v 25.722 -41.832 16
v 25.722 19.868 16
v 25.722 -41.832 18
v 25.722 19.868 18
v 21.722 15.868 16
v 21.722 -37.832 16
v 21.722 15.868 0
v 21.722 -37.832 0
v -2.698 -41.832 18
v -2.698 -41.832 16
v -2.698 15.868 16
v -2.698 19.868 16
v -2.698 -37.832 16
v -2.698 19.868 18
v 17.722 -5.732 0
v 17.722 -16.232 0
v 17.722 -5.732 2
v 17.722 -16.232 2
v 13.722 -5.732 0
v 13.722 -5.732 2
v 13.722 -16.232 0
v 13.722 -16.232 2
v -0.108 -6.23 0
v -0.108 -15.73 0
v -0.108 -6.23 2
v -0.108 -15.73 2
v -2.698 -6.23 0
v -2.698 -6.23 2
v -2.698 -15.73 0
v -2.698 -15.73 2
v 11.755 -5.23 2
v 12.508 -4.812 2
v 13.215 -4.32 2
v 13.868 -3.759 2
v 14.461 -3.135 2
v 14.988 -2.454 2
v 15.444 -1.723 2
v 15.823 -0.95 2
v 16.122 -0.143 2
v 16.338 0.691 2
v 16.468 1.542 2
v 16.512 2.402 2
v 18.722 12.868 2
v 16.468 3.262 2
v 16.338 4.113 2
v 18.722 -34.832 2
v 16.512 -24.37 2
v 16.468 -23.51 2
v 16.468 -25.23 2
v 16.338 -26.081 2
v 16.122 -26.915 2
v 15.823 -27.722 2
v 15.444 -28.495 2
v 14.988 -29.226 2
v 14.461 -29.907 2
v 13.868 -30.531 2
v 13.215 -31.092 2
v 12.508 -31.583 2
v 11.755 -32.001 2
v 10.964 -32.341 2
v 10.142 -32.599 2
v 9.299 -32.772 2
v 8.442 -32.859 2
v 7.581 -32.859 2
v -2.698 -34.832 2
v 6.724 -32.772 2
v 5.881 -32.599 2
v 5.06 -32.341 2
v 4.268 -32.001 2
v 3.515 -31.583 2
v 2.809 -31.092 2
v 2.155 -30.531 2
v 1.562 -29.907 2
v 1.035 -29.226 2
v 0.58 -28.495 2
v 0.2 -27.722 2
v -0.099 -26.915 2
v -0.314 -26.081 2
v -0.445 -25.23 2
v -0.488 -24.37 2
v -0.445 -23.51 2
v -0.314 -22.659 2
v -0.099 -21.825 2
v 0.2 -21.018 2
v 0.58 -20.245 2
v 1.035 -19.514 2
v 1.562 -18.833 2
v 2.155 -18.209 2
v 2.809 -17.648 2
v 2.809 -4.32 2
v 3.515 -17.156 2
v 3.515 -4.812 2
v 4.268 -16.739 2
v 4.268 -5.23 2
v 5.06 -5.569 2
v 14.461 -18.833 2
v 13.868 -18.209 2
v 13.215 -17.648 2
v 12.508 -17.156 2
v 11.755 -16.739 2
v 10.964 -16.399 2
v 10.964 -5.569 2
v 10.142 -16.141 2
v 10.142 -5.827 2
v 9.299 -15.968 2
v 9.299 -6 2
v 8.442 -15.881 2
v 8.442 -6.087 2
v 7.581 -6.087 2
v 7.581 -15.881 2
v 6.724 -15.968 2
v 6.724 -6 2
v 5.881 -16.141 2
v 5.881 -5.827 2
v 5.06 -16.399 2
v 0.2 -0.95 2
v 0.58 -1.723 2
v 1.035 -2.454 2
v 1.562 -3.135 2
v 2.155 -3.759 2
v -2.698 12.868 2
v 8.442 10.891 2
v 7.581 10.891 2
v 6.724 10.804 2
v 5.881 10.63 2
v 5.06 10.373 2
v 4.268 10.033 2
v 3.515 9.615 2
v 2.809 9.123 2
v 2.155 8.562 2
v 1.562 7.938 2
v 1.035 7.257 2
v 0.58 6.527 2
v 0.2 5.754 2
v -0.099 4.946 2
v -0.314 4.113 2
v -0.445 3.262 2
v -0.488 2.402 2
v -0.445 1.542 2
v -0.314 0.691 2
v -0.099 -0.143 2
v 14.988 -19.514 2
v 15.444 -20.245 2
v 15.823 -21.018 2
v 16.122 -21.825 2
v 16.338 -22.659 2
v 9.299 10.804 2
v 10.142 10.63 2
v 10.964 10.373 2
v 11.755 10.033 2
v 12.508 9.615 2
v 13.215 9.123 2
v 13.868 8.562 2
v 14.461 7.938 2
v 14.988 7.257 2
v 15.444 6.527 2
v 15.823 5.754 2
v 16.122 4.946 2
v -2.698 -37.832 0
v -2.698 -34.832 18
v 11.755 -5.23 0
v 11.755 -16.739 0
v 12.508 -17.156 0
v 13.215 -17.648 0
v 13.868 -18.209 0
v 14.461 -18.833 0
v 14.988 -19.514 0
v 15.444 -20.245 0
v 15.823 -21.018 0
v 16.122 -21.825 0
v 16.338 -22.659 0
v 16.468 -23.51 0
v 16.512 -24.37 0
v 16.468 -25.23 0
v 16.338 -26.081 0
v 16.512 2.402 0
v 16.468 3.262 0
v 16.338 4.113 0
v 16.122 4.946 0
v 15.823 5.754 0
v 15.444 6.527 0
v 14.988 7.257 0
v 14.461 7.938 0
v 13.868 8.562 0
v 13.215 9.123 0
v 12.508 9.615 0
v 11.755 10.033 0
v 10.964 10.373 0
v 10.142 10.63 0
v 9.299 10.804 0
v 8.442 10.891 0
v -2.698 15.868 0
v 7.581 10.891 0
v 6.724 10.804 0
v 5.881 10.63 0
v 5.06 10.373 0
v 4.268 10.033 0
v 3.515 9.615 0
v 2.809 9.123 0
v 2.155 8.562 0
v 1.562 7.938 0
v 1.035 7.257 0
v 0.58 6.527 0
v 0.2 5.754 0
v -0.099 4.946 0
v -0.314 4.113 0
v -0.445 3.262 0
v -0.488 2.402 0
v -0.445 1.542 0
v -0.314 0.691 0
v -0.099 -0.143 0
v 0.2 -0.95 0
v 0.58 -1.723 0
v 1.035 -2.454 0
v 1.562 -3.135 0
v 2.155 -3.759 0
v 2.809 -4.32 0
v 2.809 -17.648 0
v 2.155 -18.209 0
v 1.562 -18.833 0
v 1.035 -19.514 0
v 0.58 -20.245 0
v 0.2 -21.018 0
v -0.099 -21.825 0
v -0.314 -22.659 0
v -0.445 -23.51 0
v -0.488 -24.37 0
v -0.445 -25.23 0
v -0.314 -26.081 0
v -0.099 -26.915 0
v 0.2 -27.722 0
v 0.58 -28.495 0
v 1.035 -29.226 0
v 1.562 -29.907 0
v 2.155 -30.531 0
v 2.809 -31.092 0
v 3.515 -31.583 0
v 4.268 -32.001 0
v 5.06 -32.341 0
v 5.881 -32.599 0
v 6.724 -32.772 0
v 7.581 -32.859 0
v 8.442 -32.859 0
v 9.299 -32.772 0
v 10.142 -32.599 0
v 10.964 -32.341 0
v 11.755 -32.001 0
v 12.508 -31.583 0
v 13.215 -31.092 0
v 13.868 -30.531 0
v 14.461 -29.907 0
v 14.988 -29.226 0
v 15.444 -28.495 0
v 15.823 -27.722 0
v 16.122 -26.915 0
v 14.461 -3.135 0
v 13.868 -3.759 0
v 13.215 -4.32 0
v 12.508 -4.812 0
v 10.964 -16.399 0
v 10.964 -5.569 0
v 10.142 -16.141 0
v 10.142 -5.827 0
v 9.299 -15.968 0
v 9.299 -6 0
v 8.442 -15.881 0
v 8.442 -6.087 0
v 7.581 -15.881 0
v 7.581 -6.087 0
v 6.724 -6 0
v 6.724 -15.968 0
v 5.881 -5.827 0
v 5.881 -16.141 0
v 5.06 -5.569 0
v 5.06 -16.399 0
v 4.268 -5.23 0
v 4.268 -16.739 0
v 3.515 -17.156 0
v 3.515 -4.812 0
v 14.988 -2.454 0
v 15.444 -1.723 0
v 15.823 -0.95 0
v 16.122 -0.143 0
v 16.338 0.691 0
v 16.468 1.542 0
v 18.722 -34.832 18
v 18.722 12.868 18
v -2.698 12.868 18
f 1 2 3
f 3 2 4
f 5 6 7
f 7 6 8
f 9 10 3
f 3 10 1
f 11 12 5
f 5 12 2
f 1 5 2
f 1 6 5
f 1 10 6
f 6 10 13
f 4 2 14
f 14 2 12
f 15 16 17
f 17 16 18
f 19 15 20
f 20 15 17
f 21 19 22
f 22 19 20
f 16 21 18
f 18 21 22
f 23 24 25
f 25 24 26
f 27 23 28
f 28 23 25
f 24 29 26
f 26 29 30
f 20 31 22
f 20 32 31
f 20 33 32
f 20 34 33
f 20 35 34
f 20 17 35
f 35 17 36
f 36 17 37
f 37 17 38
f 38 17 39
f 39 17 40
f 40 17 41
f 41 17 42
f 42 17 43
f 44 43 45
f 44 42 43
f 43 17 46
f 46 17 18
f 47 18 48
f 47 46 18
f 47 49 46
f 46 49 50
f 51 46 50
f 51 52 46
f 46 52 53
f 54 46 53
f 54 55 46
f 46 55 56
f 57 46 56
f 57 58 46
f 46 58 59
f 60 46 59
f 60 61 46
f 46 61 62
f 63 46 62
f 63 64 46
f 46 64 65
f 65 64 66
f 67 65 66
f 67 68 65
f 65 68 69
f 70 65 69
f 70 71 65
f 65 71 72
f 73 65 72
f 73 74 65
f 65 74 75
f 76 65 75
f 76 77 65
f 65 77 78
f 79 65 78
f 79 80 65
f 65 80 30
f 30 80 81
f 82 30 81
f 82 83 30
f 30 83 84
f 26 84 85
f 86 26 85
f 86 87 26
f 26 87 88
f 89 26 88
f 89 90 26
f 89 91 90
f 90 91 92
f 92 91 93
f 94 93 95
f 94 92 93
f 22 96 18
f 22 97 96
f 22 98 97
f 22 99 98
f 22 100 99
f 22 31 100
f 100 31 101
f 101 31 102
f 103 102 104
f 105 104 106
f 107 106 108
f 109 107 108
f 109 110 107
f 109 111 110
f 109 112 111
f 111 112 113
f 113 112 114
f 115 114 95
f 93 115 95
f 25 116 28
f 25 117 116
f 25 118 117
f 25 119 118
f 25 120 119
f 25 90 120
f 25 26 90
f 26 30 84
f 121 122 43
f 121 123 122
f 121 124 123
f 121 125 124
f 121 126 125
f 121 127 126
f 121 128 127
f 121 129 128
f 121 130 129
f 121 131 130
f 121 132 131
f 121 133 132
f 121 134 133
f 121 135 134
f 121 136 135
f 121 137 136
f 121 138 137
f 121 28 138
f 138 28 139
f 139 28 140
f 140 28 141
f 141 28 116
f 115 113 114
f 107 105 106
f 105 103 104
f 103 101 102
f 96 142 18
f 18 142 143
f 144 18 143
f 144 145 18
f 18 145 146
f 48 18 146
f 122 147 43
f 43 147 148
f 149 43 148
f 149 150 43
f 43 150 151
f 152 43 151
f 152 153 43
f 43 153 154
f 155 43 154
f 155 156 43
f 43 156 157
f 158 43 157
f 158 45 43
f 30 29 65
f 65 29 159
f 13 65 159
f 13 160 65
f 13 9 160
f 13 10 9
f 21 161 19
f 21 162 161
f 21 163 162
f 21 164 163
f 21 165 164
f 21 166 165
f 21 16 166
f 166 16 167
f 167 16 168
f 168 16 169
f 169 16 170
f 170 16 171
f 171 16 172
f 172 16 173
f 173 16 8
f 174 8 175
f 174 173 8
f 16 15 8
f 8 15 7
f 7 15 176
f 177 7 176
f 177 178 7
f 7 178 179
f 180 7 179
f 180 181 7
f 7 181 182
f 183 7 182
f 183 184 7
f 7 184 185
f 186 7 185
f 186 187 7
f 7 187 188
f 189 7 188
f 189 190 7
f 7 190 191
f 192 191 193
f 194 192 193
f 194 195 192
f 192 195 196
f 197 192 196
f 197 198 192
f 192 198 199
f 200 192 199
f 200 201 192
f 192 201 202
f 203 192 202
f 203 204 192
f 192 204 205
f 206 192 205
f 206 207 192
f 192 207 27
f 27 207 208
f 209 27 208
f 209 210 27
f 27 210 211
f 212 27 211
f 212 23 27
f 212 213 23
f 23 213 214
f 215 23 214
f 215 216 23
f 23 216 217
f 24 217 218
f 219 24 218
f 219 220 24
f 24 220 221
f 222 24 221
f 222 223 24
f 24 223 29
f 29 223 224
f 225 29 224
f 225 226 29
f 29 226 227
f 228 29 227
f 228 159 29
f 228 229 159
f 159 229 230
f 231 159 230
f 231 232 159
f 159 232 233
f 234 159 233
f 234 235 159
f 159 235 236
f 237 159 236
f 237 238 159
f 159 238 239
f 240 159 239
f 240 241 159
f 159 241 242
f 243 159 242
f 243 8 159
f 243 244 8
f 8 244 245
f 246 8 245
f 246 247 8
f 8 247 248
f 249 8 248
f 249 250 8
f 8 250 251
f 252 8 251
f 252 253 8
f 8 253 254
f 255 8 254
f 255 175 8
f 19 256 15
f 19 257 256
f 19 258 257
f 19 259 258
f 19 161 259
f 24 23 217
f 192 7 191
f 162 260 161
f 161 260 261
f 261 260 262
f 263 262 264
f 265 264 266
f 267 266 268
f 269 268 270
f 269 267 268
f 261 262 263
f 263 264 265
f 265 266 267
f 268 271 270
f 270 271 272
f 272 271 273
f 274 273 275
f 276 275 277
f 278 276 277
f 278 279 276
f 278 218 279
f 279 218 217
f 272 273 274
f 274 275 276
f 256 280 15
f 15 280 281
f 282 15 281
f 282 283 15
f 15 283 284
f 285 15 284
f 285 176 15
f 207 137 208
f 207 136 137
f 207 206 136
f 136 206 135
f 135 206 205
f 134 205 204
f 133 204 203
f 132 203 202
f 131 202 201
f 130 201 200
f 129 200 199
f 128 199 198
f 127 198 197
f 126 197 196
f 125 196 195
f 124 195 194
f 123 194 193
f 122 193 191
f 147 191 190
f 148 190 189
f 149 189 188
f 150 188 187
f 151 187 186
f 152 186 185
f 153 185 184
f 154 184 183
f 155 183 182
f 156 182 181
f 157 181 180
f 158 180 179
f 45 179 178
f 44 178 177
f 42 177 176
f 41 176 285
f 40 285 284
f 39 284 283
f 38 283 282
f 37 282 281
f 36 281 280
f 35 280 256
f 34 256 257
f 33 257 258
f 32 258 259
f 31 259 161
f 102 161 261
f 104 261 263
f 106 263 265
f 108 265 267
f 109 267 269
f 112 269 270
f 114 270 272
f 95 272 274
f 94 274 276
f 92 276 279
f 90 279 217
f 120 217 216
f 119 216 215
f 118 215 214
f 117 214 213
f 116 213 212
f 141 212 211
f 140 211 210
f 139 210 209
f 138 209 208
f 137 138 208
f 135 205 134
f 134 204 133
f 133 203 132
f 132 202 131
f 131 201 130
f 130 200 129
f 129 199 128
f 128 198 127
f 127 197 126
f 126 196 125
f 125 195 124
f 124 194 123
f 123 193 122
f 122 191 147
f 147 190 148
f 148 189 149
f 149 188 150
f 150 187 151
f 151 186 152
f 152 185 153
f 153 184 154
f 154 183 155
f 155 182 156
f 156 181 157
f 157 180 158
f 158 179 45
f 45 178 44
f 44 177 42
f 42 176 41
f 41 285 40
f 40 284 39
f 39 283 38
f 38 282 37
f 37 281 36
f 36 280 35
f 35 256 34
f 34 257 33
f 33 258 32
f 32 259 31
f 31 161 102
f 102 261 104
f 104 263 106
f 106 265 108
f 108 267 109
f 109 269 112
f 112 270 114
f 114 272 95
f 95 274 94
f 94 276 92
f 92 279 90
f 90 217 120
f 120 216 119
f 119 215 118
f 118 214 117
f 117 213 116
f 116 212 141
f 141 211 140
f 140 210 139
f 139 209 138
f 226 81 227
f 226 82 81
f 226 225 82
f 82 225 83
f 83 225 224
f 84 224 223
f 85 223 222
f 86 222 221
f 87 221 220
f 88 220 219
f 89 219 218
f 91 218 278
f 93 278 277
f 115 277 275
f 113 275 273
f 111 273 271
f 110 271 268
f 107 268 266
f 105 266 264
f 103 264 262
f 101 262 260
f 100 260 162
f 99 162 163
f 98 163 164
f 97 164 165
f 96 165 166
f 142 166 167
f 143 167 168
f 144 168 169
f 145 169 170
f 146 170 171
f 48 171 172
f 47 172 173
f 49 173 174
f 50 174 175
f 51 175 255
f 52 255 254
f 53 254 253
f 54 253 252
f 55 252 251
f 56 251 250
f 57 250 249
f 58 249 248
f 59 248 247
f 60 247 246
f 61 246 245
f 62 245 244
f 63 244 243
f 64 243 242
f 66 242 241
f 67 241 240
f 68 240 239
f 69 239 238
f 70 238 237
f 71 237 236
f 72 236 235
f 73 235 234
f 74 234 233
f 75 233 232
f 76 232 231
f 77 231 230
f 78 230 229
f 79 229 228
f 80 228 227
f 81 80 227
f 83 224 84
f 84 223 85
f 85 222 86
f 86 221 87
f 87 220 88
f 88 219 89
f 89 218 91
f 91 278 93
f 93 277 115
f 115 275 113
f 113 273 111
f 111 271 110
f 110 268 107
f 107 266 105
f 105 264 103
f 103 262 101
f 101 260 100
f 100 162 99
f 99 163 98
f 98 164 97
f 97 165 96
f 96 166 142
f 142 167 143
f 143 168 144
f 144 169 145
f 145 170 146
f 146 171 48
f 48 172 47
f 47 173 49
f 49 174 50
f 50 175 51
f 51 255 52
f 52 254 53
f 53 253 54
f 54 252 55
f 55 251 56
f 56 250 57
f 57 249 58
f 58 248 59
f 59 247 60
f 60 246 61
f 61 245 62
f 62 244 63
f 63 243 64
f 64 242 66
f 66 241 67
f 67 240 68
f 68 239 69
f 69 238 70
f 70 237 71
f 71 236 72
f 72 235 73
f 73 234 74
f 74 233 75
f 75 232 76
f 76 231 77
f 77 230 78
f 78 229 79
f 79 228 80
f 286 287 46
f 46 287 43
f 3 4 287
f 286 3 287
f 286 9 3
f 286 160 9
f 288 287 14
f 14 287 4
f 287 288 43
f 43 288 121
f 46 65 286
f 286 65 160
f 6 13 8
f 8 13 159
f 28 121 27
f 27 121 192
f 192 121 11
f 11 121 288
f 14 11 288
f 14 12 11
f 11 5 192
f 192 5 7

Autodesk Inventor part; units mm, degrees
ref_plane "YZ Plane" through (0, 0, 0) normal (1, 0, 0) x (0, 1, 0)
ref_plane "XZ Plane" through (0, 0, 0) normal (0, 1, 0) x (-1, 0, 0)
ref_plane "XY Plane" through (0, 0, 0) normal (0, 0, 1) x (1, 0, 0)
sketch "Sketch1" plane through (0, 0, 0) normal (0, 0, 1) x (1, 0, 0)
  line L0 (-2.6984, 15.8681) -> (21.7216, 15.8681)
  line L1 (21.7216, 15.8681) -> (21.7216, -37.8319)
  line L2 (21.7216, -37.8319) -> (-2.6984, -37.8319)
  line L3 (-2.6984, -37.8319) -> (-2.6984, 15.8681)
  point P0 (0, 0)
  dimension "d0" = 53.7
  dimension "d1" = 24.42
extrude "Extrusion1" add sketch "Sketch1" along normal blind 2
sketch "Sketch2" plane through (0, 0, 2) normal (0, 0, 1) x (1, 0, 0)
  line L0 (-2.6984, -37.8319) -> (21.7216, -37.8319) projected
  line L1 (21.7216, 15.8681) -> (18.7216, 15.8681)
  line L2 (18.7216, 15.8681) -> (18.7216, -37.8319)
  line L3 (18.7216, -37.8319) -> (21.7216, -37.8319)
  line L4 (21.7216, -37.8319) -> (21.7216, 15.8681)
  line L5 (21.7216, -37.8319) -> (21.7216, 15.8681) projected
  line L6 (-2.6984, 15.8681) -> (21.7216, 15.8681)
  line L7 (21.7216, 15.8681) -> (21.7216, 12.8681)
  line L8 (21.7216, 12.8681) -> (-2.6984, 12.8681)
  line L9 (-2.6984, 12.8681) -> (-2.6984, 15.8681)
  line L10 (-2.6984, -37.8319) -> (21.7216, -37.8319)
  line L11 (21.7216, -37.8319) -> (21.7216, -34.8319)
  line L12 (21.7216, -34.8319) -> (-2.6984, -34.8319)
  line L13 (-2.6984, -34.8319) -> (-2.6984, -37.8319)
  point P0 (0, 0)
  dimension "d4" = 3
  dimension "d5" = 3
  dimension "d6" = 3
extrude "Extrusion2" add sketch "Sketch2" along normal blind 16
sketch "Sketch3" plane through (0, 0, 0) normal (0, 0, -1) x (-1, 0, 0)
  point P0 (0, 0)
sketch "Sketch4" plane through (0, 0, 0) normal (0, 0, -1) x (-1, 0, 0)
  circle A0 centre (-8.0116, 2.4017) radius 8.5
  circle A1 centre (-8.0116, -24.3699) radius 8.5
  line L0 (2.6984, -37.8319) -> (2.6984, 15.8681) projected
  line L1 (-21.7216, -37.8319) -> (2.6984, -37.8319) projected
  line L2 (2.6984, 15.8681) -> (-21.7216, 15.8681) projected
  line L3 (-18.7216, 12.8681) -> (-18.7216, -34.8319) projected
  point P0 (0, 0)
  dimension "d9" = 17
  dimension "d10" = 17
  dimension "d11" = 10.71
  dimension "d12" = 10.71
  dimension "d13" = 26.7716
  dimension "d14" = 13.462
  dimension "d15" = 13.4664
  dimension "d45" = 24.42
  dimension "d46" = 21.42
hole "Hole1" at (8.0116, 2.4017, 0) at (8.0116, -24.3699, 0) direction (0, 0, 1) diameter 17 depth 2 tip angle 118
sketch "Sketch5" plane through (0, 0, 2) normal (0, 0, 1) x (1, 0, 0)
  line L0 (-0.1076, -6.2299) -> (-2.6984, -6.2299)
  line L1 (-2.6984, -6.2299) -> (-2.6984, -15.7299)
  line L2 (-2.6984, -15.7299) -> (-0.1076, -15.7299)
  line L3 (-0.1076, -15.7299) -> (-0.1076, -6.2299)
  line L4 (21.7216, 15.8681) -> (-2.6984, 15.8681) projected
  line L5 (-2.6984, -37.8319) -> (21.7216, -37.8319) projected
  line L6 (-2.6984, 12.8681) -> (-2.6984, -34.8319) projected
  point P0 (0, 0)
  dimension "d23" = 9.5
  dimension "d24" = 22.098
  dimension "d25" = 22.102
  dimension "d26" = 2.5908
  dimension "d27" = 0
  dimension "d47" = 2.5908
extrude "Extrusion3" cut sketch "Sketch5" against normal blind 10
sketch "Sketch6" plane through (0, 0, 2) normal (0, 0, 1) x (1, 0, 0)
  line L0 (17.7216, -5.7319) -> (13.7216, -5.7319)
  line L1 (13.7216, -5.7319) -> (13.7216, -16.2319)
  line L2 (13.7216, -16.2319) -> (17.7216, -16.2319)
  line L3 (17.7216, -16.2319) -> (17.7216, -5.7319)
  line L4 (21.7216, 15.8681) -> (21.7216, -37.8319) projected
  line L5 (-2.6984, -37.8319) -> (21.7216, -37.8319) projected
  line L6 (21.7216, 15.8681) -> (-2.6984, 15.8681) projected
  point P0 (0, 0)
  dimension "d30" = 4
  dimension "d31" = 10.5
  dimension "d32" = 4
  dimension "d33" = 21.6
  dimension "d34" = 21.6
extrude "Extrusion4" cut sketch "Sketch6" against normal blind 10
sketch "Sketch7" plane through (-2.6984, 15.8681, 0) normal (0, 1, 0) x (1, 0, 0)
  line L0 (0, -2) -> (0, -18) projected
  line L1 (24.42, -18) -> (0, -18)
  line L2 (0, -18) -> (0, -16)
  line L3 (0, -16) -> (24.42, -16)
  line L4 (24.42, -16) -> (24.42, -18)
  point P0 (2.6984, 0)
  dimension "d37" = 2
extrude "Extrusion5" add sketch "Sketch7" along normal blind 4
sketch "Sketch8" plane through (21.7216, -37.8319, 0) normal (1, 0, 0) x (0, 0, -1)
  point P0 (0, 37.8319)
sketch "Sketch9" plane through (-2.6984, -37.8319, 0) normal (0, -1, 0) x (1, 0, 0)
  line L0 (24.42, 0) -> (24.42, 18) projected
  line L1 (0, 18) -> (24.42, 18)
  line L2 (24.42, 18) -> (24.42, 16)
  line L3 (24.42, 16) -> (0, 16)
  line L4 (0, 16) -> (0, 18)
  point P0 (2.6984, 0)
  dimension "d40" = 2
extrude "Extrusion6" add sketch "Sketch9" along normal blind 4
sketch "Sketch10" plane through (21.7216, -37.8319, 0) normal (1, 0, 0) x (0, 0, -1)
  line L0 (-18, -4) -> (-16, -4)
  line L1 (-16, -4) -> (-16, 57.7)
  line L2 (-16, 57.7) -> (-18, 57.7)
  line L3 (-18, 57.7) -> (-18, -4)
  point P0 (0, 37.8319)
extrude "Extrusion7" add sketch "Sketch10" along normal blind 4
equation "\"d11\" = 0.5 * d46"
equation "\"d12\" = 0.5 * d46"
equation "\"d33\" = d34"
properties part number "Sonar_Bracket" material "ABS Plastic"
